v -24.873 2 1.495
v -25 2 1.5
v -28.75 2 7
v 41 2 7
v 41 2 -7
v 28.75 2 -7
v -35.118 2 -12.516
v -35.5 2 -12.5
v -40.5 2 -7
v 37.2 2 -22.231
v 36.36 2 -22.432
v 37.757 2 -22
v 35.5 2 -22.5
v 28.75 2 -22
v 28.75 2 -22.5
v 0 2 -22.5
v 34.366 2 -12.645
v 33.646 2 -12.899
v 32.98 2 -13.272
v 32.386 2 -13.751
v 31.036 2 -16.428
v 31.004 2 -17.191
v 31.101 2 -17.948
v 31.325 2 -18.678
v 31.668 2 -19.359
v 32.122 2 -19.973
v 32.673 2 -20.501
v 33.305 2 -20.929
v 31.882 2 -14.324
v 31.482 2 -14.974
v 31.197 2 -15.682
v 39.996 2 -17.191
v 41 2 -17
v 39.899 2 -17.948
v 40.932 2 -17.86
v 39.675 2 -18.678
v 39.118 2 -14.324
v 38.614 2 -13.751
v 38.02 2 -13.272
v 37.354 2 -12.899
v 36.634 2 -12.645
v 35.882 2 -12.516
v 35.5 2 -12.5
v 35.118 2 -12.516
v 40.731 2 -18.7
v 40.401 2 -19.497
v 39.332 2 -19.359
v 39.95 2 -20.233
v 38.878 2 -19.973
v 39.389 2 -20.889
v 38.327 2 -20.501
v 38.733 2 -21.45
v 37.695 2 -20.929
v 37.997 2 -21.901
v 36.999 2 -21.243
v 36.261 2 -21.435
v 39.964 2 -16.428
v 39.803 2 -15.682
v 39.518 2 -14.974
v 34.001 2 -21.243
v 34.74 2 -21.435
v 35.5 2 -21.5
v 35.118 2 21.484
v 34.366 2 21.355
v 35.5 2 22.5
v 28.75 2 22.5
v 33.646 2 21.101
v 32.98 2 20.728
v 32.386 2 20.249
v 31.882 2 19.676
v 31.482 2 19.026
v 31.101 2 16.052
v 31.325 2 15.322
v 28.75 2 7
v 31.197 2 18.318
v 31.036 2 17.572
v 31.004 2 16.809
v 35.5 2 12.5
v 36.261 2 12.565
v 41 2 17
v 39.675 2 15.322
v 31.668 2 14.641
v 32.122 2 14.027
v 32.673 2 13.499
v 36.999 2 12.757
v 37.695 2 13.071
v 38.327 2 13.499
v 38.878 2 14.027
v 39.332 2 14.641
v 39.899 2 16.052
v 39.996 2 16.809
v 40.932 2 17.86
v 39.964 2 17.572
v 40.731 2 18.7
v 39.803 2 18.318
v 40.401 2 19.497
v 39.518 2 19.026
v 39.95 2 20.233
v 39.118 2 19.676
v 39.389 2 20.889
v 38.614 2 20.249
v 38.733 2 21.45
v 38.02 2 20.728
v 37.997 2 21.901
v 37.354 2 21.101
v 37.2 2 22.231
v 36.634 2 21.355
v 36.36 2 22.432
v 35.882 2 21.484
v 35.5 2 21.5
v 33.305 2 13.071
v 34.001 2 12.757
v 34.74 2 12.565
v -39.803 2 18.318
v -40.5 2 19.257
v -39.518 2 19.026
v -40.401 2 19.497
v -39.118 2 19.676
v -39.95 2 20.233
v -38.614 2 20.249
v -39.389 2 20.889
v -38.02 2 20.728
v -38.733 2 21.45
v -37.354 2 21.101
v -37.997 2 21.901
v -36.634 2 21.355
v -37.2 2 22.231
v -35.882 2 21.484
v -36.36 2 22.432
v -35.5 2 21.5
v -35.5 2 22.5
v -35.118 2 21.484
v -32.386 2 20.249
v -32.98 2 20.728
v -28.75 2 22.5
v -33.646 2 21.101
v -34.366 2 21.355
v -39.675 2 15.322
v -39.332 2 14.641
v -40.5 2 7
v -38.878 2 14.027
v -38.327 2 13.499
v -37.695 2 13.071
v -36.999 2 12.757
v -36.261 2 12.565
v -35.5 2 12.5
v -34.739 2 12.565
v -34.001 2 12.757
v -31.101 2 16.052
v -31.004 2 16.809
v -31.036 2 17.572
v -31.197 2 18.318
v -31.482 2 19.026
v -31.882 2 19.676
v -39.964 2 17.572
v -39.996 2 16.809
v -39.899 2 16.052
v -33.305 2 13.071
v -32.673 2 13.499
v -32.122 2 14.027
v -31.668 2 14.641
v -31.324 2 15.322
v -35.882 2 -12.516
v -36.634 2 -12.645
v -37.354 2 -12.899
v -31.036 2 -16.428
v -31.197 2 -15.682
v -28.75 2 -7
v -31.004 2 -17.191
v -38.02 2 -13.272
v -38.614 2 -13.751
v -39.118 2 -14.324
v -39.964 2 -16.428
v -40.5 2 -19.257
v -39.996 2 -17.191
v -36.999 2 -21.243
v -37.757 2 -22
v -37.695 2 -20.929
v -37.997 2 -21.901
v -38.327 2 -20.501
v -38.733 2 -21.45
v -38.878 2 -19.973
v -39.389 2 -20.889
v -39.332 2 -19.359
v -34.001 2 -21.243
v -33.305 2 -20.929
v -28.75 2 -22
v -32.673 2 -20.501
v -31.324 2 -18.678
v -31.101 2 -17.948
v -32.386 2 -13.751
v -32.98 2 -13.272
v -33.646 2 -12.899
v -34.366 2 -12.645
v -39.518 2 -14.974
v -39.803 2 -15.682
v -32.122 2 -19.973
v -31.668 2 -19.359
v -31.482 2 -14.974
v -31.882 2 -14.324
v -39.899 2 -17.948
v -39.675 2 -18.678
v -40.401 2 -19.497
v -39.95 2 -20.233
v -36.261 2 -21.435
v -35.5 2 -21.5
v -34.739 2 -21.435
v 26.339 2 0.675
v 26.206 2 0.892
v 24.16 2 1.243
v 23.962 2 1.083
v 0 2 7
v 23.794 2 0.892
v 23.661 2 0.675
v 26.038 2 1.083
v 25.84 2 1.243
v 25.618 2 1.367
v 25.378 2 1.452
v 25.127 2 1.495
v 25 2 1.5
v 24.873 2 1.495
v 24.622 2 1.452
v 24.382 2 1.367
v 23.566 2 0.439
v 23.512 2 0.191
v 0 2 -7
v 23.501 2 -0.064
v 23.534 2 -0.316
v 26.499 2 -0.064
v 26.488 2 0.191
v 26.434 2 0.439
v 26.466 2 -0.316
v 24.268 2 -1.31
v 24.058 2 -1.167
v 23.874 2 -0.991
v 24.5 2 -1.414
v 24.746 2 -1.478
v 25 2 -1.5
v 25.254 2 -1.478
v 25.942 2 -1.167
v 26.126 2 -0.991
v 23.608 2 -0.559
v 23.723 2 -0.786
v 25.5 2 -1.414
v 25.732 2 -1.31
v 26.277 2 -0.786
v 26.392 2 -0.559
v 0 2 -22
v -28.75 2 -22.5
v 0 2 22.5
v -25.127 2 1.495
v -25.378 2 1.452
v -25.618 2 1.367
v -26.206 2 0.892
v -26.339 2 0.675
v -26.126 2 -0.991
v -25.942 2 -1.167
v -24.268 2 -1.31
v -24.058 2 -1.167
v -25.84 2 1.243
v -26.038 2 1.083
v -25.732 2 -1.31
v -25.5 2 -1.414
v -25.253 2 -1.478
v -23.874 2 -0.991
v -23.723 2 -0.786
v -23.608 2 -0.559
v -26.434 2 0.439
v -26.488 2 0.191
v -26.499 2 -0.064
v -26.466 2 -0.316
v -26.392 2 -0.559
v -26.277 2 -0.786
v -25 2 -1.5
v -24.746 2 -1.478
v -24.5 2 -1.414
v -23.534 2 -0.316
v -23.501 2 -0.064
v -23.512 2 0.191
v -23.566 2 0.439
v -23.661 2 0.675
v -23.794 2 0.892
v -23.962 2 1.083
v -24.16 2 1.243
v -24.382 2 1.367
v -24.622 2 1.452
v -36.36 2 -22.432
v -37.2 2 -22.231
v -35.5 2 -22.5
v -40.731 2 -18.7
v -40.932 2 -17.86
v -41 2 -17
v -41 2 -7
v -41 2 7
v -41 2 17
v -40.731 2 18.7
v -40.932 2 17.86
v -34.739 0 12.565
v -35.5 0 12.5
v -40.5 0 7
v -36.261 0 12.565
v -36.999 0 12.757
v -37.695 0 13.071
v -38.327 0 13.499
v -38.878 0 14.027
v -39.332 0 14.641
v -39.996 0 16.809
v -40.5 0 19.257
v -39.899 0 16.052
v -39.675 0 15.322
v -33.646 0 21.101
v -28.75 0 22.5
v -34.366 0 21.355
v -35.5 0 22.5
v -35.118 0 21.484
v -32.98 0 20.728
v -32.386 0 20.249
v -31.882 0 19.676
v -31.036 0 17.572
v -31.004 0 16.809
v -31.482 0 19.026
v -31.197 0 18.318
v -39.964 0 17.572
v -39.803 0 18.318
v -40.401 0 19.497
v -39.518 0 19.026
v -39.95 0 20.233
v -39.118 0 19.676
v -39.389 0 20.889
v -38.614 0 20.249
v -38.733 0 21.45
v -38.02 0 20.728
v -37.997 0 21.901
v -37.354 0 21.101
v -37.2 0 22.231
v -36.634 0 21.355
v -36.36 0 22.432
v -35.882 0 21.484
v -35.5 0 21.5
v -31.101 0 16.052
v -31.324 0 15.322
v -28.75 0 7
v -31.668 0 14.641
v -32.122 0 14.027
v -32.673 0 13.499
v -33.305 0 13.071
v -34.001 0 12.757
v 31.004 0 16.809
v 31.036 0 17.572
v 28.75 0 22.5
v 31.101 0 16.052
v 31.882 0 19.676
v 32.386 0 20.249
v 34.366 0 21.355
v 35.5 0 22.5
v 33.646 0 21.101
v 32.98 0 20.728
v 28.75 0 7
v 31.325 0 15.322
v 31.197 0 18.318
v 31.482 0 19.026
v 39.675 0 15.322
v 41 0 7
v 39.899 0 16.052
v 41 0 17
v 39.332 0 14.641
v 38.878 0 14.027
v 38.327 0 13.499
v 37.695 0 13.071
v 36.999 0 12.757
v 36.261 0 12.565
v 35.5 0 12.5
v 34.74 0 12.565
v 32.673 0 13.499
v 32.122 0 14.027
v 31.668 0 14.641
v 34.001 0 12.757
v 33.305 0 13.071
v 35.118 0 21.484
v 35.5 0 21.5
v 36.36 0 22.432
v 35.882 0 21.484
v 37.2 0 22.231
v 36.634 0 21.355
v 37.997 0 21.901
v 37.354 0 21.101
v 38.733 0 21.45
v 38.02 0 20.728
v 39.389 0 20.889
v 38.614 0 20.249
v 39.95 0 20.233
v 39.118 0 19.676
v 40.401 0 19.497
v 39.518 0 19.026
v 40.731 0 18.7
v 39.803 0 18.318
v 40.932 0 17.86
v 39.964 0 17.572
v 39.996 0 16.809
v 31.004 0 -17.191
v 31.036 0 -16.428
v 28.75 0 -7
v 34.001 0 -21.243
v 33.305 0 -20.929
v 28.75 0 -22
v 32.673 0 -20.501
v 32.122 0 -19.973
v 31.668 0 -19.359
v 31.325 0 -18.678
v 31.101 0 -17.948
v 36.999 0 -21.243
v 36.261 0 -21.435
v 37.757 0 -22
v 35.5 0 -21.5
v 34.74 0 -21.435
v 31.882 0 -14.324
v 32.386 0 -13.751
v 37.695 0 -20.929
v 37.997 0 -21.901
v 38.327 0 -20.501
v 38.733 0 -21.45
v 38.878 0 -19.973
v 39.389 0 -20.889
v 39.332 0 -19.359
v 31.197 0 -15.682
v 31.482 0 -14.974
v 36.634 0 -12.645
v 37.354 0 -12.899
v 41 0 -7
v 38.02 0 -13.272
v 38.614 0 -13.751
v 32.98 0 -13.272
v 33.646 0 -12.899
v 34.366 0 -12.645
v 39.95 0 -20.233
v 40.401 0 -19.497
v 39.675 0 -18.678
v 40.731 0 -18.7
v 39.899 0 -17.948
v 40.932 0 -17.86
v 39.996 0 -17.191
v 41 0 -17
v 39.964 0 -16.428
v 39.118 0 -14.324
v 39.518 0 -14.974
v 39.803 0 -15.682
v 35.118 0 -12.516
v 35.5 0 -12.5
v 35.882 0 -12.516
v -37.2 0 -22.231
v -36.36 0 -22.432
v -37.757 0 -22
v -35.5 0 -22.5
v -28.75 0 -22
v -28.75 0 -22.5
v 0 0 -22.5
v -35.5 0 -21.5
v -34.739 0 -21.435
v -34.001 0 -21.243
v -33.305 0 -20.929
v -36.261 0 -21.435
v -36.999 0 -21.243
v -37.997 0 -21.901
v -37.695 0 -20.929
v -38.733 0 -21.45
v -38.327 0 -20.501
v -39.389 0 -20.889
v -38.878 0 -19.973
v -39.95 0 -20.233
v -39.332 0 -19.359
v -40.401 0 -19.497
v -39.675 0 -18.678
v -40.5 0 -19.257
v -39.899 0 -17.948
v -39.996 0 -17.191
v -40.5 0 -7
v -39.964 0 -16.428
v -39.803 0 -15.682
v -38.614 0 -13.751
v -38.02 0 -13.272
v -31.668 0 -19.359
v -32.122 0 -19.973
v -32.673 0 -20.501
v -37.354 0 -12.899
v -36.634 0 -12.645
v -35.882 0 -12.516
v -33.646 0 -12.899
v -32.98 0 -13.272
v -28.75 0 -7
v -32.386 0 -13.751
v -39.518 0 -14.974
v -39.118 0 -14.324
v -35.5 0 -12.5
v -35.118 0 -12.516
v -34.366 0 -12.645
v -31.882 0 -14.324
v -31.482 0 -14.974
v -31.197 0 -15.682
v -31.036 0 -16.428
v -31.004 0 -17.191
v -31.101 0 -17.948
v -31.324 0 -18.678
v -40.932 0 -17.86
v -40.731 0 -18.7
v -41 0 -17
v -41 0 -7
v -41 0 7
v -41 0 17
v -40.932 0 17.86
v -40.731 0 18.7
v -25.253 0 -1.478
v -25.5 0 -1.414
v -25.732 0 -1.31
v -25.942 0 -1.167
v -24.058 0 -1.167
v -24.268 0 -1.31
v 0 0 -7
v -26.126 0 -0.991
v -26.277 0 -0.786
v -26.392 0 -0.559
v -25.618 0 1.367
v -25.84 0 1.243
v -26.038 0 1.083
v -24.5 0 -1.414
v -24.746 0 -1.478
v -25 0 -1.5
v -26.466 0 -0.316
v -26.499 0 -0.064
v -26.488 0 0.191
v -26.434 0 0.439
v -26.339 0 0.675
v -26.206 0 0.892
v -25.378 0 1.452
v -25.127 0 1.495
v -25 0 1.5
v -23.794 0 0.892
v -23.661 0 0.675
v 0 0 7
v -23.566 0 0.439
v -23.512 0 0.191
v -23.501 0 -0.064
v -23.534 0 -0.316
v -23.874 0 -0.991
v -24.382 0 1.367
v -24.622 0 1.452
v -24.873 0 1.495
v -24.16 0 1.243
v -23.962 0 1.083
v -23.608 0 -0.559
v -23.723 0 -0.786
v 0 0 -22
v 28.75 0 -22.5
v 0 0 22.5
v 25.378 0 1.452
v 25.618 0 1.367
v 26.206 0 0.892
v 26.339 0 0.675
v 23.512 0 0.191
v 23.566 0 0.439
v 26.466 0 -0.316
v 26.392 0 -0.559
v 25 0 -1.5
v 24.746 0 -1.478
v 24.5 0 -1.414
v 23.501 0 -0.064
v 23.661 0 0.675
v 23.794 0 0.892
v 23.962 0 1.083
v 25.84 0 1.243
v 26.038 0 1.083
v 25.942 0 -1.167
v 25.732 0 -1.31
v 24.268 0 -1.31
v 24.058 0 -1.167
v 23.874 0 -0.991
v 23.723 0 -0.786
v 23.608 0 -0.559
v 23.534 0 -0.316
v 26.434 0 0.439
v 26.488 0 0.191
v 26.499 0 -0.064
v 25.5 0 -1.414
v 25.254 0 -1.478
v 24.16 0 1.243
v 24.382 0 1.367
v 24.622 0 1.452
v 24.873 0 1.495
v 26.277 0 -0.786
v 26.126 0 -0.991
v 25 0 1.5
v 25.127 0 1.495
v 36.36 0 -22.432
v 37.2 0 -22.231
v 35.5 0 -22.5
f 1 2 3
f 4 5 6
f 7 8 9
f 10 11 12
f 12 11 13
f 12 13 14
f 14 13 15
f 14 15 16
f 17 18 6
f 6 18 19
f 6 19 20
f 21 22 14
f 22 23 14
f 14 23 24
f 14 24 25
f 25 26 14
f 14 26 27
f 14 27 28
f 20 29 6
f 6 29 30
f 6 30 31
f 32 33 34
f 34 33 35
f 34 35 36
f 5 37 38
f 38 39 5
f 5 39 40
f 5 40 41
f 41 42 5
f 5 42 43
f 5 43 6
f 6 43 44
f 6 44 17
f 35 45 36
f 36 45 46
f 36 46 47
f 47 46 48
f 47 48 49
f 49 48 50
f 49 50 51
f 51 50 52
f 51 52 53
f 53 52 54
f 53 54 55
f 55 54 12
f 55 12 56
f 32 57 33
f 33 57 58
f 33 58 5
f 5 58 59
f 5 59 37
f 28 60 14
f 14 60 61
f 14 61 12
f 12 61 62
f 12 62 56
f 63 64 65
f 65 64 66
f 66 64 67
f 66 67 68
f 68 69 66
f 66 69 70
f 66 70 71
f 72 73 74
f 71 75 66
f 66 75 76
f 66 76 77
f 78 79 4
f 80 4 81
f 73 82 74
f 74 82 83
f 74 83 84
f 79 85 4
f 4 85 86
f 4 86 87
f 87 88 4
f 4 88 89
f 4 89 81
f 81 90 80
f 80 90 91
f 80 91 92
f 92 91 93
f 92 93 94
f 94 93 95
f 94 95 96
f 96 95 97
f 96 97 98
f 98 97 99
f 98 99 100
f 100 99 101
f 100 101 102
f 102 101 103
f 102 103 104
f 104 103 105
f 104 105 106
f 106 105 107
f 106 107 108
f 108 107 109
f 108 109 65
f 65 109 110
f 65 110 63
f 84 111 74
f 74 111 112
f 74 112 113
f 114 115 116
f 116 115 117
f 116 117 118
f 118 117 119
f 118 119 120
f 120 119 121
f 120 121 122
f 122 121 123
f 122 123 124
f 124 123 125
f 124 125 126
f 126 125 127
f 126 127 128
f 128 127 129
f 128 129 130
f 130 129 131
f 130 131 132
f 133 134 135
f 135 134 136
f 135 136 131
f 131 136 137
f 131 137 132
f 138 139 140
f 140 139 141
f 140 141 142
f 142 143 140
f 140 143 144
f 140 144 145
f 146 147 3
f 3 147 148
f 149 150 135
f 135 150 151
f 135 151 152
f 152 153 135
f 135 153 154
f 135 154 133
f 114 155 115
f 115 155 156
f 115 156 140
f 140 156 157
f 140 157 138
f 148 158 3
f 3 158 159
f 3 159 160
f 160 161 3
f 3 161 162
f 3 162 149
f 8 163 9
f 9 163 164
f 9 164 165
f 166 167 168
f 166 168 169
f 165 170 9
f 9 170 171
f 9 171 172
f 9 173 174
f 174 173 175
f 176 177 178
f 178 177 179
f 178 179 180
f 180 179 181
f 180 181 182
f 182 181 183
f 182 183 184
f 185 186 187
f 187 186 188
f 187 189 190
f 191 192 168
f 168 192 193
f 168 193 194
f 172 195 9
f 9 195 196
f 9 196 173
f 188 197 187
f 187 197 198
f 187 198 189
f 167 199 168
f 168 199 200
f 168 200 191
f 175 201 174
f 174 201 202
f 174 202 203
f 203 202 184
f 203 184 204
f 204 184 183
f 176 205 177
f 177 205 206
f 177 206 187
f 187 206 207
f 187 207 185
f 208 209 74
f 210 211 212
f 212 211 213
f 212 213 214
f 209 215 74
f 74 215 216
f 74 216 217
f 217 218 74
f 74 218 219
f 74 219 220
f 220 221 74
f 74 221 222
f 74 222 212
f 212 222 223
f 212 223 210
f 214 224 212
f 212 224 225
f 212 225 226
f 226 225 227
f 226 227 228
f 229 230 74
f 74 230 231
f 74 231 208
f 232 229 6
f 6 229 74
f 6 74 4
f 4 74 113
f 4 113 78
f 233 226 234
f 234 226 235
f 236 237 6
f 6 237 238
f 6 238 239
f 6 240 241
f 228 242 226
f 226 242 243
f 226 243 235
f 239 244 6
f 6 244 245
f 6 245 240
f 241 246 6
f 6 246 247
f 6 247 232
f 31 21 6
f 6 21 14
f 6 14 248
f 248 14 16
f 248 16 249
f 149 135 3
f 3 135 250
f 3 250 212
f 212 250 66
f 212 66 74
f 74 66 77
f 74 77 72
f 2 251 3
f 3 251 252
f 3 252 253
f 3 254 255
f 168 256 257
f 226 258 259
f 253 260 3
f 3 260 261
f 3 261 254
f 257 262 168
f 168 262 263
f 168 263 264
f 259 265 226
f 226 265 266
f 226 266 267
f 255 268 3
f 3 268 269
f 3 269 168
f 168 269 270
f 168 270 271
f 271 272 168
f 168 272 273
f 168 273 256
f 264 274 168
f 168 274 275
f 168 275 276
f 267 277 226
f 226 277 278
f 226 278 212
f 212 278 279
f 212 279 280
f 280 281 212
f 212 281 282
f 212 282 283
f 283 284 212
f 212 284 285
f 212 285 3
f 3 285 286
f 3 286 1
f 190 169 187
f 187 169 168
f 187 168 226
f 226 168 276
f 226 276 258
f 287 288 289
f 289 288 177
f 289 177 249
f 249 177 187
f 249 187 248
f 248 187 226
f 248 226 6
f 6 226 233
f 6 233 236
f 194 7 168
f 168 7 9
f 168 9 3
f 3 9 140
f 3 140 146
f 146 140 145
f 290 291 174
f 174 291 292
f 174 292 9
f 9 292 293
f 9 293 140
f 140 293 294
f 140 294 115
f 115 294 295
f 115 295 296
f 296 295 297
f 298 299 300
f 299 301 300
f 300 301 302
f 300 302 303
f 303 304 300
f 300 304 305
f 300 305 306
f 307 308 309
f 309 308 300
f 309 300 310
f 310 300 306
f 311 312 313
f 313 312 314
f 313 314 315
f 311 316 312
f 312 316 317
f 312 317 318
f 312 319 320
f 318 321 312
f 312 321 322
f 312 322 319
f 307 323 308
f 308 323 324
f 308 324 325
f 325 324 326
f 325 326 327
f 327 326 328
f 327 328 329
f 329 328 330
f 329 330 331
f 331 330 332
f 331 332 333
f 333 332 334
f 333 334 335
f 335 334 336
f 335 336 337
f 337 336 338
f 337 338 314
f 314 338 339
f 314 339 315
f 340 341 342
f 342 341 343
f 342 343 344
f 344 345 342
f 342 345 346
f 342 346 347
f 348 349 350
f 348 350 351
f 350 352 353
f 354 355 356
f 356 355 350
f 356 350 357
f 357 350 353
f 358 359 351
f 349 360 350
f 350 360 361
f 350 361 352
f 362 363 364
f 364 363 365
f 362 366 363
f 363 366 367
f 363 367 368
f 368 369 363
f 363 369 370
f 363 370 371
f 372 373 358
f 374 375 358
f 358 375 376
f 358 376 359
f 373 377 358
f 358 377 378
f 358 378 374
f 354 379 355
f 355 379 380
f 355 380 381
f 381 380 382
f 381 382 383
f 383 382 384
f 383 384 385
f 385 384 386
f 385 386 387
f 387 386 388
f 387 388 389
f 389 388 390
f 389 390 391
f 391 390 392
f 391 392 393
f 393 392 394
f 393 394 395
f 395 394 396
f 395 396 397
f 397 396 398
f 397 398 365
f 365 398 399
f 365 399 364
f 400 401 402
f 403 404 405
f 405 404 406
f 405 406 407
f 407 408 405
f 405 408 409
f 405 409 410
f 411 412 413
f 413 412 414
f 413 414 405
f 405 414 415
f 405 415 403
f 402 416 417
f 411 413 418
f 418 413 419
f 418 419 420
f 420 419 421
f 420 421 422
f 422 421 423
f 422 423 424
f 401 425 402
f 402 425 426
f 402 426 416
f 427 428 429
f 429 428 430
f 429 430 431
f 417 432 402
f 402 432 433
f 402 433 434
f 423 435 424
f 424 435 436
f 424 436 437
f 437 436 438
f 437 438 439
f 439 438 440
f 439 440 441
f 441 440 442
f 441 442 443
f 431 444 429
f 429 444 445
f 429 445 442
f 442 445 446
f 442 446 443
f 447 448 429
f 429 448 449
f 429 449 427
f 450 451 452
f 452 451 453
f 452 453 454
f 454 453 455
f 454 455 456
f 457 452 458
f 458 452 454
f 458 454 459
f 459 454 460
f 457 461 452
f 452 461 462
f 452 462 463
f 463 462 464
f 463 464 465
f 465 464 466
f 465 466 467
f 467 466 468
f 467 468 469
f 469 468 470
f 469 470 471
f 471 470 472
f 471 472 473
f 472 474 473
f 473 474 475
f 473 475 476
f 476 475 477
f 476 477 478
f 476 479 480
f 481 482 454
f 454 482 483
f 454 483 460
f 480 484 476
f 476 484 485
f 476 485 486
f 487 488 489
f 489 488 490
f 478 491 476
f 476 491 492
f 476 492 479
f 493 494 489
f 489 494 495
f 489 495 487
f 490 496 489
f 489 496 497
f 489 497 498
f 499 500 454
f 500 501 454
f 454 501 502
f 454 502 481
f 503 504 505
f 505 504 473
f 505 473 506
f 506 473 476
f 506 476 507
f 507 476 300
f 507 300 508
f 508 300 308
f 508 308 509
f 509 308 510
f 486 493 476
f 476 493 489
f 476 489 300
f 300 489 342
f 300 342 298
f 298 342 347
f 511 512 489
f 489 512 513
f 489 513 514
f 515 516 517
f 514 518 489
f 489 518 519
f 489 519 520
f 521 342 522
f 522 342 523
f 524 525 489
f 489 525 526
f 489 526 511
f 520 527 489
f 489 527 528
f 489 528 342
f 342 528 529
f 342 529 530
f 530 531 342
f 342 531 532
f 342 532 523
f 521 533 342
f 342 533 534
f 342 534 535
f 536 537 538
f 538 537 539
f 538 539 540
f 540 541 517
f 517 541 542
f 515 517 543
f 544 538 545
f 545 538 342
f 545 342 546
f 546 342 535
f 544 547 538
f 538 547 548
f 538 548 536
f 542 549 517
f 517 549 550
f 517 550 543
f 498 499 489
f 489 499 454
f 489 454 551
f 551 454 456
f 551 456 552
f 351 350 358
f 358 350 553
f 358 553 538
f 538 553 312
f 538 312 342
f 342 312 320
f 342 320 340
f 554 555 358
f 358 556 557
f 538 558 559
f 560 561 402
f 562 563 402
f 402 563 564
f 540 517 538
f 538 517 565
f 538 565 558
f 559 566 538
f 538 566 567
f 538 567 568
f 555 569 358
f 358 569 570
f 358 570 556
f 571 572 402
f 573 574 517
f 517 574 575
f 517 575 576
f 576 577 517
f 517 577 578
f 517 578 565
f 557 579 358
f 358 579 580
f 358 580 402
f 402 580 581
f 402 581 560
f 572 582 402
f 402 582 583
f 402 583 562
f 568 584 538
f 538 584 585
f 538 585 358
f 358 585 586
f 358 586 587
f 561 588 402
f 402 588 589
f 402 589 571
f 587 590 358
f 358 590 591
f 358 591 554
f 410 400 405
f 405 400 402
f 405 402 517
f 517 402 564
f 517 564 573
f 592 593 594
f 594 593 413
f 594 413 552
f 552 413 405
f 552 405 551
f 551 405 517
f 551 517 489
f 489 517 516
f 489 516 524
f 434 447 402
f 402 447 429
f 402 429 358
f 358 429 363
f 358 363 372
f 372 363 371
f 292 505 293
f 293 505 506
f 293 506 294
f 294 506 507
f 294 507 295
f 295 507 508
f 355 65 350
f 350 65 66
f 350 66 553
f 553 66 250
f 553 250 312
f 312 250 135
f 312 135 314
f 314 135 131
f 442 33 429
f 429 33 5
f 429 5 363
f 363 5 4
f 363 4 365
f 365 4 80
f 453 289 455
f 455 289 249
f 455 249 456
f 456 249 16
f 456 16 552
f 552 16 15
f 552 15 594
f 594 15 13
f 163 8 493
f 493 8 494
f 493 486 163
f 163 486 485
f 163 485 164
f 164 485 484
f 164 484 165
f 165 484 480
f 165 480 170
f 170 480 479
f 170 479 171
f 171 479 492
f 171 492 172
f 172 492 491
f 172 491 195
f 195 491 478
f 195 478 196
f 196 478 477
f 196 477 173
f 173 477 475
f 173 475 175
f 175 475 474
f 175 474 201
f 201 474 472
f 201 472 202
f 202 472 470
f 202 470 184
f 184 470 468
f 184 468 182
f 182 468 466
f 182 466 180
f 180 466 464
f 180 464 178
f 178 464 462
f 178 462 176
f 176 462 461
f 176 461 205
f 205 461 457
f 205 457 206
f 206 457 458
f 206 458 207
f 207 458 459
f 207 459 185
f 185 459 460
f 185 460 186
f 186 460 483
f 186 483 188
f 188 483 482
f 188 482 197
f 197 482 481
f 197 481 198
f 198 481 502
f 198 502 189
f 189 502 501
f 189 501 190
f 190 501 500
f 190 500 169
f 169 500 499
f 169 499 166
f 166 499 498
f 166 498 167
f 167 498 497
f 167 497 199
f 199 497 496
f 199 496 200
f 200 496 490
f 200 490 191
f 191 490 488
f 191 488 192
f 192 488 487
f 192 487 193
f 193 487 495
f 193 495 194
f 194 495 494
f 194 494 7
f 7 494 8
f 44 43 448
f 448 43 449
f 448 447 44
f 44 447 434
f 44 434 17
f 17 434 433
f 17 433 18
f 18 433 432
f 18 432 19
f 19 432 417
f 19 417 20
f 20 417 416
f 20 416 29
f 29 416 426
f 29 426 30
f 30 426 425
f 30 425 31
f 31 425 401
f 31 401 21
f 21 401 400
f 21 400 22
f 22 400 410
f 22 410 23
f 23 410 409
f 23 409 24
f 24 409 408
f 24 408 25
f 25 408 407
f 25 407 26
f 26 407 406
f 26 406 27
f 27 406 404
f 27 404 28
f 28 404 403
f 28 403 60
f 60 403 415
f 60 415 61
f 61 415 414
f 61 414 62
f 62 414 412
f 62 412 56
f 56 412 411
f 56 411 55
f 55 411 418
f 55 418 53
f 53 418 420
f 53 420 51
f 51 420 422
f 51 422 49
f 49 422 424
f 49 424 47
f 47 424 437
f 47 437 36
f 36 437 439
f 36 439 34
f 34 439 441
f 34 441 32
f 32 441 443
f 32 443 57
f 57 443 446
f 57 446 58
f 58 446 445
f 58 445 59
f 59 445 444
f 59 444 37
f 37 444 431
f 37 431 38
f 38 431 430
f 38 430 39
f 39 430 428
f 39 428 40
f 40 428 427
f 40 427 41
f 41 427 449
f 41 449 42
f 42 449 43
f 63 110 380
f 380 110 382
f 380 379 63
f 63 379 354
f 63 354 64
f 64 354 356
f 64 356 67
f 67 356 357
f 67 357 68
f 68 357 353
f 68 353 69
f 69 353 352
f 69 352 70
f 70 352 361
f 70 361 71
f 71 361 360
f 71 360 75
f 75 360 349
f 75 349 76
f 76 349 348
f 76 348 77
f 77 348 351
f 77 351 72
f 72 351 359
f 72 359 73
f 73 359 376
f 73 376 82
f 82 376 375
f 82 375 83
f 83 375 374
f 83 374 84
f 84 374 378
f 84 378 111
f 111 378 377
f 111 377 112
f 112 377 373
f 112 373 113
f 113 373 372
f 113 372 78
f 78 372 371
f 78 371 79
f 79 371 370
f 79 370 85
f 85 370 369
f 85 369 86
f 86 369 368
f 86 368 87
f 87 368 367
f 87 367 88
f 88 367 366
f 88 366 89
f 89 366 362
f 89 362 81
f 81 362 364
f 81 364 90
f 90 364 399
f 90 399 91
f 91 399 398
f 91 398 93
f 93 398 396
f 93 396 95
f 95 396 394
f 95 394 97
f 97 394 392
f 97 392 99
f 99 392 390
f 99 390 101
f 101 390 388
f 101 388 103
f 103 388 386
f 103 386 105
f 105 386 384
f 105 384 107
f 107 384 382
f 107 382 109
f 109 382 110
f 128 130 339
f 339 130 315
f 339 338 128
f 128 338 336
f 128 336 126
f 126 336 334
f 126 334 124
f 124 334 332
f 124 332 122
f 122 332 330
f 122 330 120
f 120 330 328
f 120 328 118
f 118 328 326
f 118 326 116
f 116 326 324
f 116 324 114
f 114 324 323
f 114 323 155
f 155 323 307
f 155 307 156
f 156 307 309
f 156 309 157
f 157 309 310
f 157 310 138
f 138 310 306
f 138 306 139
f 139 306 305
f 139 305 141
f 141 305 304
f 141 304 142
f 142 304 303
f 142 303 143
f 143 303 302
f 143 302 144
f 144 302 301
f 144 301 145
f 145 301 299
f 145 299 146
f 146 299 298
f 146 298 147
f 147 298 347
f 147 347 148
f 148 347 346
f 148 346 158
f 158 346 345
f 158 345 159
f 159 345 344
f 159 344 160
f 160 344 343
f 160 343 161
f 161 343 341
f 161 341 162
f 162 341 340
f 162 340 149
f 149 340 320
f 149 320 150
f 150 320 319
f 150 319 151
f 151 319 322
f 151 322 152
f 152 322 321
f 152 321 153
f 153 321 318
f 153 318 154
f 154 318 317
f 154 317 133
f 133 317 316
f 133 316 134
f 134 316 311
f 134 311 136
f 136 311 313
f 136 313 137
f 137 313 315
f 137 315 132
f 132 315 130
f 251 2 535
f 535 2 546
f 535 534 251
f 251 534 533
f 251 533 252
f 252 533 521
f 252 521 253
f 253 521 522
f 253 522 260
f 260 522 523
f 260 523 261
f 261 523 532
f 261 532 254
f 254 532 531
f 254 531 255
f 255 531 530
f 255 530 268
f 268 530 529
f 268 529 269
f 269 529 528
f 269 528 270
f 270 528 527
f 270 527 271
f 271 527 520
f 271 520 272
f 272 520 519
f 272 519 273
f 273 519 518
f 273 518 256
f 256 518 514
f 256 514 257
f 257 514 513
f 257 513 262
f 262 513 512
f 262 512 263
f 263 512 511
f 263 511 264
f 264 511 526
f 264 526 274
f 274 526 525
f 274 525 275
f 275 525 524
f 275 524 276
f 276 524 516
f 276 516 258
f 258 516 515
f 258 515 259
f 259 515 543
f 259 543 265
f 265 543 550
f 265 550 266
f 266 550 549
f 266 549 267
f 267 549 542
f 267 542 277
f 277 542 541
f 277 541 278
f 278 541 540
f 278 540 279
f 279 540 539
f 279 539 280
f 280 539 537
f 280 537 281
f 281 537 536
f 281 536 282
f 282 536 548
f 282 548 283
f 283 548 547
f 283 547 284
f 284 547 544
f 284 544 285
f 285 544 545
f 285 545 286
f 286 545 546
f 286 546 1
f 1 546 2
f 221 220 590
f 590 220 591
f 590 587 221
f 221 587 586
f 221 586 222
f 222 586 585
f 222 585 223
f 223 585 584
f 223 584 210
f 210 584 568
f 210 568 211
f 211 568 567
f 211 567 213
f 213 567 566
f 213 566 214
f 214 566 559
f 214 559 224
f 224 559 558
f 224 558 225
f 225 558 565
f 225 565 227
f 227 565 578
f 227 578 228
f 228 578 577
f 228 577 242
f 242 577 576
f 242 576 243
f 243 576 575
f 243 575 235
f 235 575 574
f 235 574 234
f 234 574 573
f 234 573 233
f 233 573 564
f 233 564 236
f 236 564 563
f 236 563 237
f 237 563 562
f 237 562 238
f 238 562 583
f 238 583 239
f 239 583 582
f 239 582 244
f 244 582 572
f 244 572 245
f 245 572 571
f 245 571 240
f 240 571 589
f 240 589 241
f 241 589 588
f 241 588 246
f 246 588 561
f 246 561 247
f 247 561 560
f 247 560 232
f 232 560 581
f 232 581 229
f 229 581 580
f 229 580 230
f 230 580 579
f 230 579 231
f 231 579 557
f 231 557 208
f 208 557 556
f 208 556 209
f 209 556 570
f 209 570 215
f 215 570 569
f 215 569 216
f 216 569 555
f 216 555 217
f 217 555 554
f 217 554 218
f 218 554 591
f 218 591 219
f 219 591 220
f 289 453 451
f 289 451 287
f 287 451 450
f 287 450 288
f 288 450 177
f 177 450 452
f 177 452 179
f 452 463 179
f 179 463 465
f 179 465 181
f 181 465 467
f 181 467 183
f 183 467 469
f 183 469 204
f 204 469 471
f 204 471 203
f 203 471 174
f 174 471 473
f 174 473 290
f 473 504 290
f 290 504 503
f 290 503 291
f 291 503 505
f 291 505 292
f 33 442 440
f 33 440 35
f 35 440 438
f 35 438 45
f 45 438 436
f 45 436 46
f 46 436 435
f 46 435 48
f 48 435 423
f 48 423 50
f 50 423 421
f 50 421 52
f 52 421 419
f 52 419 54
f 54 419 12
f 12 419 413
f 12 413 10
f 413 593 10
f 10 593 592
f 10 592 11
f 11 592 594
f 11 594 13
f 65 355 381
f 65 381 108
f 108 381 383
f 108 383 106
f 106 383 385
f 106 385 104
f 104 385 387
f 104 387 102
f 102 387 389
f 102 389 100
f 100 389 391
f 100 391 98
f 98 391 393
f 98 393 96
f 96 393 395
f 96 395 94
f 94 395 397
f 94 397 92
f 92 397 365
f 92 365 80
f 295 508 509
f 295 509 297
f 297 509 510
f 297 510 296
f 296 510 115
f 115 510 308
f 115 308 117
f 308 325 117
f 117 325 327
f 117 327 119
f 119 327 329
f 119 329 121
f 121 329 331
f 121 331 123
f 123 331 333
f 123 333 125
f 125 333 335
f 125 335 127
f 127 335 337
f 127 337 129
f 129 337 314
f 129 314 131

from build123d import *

# Parameters (mm, degrees)
ESQUISSE1_W        = 82
ESQUISSE1_H        = 45
ESQUISSE1_R        = 4.5
ESQUISSE1_R_2      = 1.5
BOSS_EXTRU_1_DEPTH = 2
CONG_1_R           = 5.5


with BuildPart() as part:
    # Esquisse1 → Boss.-Extru.1 (new body)
    with BuildSketch(Plane(origin=(0, 0, 0), x_dir=(1, 0, 0), z_dir=(0, 1, 0))):
        Rectangle(ESQUISSE1_W, ESQUISSE1_H)
        with Locations((-35.5, 17)):
            Circle(ESQUISSE1_R, mode=Mode.SUBTRACT)
        with Locations((35.5, 17)):
            Circle(ESQUISSE1_R, mode=Mode.SUBTRACT)
        with Locations((35.5, -17)):
            Circle(ESQUISSE1_R, mode=Mode.SUBTRACT)
        with Locations((-35.5, -17)):
            Circle(ESQUISSE1_R, mode=Mode.SUBTRACT)
        with Locations((-25, 0)):
            Circle(ESQUISSE1_R_2, mode=Mode.SUBTRACT)
        with Locations((25, 0)):
            Circle(ESQUISSE1_R_2, mode=Mode.SUBTRACT)
    extrude(amount=BOSS_EXTRU_1_DEPTH)

    # Congé1
    cong_1_edges = [part.edges().sort_by_distance(p)[0] for p in [
        (-41, 1, -22.5),
        (41, 1, -22.5),
        (41, 1, 22.5),
        (-41, 1, 22.5),
    ]]
    fillet(cong_1_edges, radius=CONG_1_R)


solid = part.part
